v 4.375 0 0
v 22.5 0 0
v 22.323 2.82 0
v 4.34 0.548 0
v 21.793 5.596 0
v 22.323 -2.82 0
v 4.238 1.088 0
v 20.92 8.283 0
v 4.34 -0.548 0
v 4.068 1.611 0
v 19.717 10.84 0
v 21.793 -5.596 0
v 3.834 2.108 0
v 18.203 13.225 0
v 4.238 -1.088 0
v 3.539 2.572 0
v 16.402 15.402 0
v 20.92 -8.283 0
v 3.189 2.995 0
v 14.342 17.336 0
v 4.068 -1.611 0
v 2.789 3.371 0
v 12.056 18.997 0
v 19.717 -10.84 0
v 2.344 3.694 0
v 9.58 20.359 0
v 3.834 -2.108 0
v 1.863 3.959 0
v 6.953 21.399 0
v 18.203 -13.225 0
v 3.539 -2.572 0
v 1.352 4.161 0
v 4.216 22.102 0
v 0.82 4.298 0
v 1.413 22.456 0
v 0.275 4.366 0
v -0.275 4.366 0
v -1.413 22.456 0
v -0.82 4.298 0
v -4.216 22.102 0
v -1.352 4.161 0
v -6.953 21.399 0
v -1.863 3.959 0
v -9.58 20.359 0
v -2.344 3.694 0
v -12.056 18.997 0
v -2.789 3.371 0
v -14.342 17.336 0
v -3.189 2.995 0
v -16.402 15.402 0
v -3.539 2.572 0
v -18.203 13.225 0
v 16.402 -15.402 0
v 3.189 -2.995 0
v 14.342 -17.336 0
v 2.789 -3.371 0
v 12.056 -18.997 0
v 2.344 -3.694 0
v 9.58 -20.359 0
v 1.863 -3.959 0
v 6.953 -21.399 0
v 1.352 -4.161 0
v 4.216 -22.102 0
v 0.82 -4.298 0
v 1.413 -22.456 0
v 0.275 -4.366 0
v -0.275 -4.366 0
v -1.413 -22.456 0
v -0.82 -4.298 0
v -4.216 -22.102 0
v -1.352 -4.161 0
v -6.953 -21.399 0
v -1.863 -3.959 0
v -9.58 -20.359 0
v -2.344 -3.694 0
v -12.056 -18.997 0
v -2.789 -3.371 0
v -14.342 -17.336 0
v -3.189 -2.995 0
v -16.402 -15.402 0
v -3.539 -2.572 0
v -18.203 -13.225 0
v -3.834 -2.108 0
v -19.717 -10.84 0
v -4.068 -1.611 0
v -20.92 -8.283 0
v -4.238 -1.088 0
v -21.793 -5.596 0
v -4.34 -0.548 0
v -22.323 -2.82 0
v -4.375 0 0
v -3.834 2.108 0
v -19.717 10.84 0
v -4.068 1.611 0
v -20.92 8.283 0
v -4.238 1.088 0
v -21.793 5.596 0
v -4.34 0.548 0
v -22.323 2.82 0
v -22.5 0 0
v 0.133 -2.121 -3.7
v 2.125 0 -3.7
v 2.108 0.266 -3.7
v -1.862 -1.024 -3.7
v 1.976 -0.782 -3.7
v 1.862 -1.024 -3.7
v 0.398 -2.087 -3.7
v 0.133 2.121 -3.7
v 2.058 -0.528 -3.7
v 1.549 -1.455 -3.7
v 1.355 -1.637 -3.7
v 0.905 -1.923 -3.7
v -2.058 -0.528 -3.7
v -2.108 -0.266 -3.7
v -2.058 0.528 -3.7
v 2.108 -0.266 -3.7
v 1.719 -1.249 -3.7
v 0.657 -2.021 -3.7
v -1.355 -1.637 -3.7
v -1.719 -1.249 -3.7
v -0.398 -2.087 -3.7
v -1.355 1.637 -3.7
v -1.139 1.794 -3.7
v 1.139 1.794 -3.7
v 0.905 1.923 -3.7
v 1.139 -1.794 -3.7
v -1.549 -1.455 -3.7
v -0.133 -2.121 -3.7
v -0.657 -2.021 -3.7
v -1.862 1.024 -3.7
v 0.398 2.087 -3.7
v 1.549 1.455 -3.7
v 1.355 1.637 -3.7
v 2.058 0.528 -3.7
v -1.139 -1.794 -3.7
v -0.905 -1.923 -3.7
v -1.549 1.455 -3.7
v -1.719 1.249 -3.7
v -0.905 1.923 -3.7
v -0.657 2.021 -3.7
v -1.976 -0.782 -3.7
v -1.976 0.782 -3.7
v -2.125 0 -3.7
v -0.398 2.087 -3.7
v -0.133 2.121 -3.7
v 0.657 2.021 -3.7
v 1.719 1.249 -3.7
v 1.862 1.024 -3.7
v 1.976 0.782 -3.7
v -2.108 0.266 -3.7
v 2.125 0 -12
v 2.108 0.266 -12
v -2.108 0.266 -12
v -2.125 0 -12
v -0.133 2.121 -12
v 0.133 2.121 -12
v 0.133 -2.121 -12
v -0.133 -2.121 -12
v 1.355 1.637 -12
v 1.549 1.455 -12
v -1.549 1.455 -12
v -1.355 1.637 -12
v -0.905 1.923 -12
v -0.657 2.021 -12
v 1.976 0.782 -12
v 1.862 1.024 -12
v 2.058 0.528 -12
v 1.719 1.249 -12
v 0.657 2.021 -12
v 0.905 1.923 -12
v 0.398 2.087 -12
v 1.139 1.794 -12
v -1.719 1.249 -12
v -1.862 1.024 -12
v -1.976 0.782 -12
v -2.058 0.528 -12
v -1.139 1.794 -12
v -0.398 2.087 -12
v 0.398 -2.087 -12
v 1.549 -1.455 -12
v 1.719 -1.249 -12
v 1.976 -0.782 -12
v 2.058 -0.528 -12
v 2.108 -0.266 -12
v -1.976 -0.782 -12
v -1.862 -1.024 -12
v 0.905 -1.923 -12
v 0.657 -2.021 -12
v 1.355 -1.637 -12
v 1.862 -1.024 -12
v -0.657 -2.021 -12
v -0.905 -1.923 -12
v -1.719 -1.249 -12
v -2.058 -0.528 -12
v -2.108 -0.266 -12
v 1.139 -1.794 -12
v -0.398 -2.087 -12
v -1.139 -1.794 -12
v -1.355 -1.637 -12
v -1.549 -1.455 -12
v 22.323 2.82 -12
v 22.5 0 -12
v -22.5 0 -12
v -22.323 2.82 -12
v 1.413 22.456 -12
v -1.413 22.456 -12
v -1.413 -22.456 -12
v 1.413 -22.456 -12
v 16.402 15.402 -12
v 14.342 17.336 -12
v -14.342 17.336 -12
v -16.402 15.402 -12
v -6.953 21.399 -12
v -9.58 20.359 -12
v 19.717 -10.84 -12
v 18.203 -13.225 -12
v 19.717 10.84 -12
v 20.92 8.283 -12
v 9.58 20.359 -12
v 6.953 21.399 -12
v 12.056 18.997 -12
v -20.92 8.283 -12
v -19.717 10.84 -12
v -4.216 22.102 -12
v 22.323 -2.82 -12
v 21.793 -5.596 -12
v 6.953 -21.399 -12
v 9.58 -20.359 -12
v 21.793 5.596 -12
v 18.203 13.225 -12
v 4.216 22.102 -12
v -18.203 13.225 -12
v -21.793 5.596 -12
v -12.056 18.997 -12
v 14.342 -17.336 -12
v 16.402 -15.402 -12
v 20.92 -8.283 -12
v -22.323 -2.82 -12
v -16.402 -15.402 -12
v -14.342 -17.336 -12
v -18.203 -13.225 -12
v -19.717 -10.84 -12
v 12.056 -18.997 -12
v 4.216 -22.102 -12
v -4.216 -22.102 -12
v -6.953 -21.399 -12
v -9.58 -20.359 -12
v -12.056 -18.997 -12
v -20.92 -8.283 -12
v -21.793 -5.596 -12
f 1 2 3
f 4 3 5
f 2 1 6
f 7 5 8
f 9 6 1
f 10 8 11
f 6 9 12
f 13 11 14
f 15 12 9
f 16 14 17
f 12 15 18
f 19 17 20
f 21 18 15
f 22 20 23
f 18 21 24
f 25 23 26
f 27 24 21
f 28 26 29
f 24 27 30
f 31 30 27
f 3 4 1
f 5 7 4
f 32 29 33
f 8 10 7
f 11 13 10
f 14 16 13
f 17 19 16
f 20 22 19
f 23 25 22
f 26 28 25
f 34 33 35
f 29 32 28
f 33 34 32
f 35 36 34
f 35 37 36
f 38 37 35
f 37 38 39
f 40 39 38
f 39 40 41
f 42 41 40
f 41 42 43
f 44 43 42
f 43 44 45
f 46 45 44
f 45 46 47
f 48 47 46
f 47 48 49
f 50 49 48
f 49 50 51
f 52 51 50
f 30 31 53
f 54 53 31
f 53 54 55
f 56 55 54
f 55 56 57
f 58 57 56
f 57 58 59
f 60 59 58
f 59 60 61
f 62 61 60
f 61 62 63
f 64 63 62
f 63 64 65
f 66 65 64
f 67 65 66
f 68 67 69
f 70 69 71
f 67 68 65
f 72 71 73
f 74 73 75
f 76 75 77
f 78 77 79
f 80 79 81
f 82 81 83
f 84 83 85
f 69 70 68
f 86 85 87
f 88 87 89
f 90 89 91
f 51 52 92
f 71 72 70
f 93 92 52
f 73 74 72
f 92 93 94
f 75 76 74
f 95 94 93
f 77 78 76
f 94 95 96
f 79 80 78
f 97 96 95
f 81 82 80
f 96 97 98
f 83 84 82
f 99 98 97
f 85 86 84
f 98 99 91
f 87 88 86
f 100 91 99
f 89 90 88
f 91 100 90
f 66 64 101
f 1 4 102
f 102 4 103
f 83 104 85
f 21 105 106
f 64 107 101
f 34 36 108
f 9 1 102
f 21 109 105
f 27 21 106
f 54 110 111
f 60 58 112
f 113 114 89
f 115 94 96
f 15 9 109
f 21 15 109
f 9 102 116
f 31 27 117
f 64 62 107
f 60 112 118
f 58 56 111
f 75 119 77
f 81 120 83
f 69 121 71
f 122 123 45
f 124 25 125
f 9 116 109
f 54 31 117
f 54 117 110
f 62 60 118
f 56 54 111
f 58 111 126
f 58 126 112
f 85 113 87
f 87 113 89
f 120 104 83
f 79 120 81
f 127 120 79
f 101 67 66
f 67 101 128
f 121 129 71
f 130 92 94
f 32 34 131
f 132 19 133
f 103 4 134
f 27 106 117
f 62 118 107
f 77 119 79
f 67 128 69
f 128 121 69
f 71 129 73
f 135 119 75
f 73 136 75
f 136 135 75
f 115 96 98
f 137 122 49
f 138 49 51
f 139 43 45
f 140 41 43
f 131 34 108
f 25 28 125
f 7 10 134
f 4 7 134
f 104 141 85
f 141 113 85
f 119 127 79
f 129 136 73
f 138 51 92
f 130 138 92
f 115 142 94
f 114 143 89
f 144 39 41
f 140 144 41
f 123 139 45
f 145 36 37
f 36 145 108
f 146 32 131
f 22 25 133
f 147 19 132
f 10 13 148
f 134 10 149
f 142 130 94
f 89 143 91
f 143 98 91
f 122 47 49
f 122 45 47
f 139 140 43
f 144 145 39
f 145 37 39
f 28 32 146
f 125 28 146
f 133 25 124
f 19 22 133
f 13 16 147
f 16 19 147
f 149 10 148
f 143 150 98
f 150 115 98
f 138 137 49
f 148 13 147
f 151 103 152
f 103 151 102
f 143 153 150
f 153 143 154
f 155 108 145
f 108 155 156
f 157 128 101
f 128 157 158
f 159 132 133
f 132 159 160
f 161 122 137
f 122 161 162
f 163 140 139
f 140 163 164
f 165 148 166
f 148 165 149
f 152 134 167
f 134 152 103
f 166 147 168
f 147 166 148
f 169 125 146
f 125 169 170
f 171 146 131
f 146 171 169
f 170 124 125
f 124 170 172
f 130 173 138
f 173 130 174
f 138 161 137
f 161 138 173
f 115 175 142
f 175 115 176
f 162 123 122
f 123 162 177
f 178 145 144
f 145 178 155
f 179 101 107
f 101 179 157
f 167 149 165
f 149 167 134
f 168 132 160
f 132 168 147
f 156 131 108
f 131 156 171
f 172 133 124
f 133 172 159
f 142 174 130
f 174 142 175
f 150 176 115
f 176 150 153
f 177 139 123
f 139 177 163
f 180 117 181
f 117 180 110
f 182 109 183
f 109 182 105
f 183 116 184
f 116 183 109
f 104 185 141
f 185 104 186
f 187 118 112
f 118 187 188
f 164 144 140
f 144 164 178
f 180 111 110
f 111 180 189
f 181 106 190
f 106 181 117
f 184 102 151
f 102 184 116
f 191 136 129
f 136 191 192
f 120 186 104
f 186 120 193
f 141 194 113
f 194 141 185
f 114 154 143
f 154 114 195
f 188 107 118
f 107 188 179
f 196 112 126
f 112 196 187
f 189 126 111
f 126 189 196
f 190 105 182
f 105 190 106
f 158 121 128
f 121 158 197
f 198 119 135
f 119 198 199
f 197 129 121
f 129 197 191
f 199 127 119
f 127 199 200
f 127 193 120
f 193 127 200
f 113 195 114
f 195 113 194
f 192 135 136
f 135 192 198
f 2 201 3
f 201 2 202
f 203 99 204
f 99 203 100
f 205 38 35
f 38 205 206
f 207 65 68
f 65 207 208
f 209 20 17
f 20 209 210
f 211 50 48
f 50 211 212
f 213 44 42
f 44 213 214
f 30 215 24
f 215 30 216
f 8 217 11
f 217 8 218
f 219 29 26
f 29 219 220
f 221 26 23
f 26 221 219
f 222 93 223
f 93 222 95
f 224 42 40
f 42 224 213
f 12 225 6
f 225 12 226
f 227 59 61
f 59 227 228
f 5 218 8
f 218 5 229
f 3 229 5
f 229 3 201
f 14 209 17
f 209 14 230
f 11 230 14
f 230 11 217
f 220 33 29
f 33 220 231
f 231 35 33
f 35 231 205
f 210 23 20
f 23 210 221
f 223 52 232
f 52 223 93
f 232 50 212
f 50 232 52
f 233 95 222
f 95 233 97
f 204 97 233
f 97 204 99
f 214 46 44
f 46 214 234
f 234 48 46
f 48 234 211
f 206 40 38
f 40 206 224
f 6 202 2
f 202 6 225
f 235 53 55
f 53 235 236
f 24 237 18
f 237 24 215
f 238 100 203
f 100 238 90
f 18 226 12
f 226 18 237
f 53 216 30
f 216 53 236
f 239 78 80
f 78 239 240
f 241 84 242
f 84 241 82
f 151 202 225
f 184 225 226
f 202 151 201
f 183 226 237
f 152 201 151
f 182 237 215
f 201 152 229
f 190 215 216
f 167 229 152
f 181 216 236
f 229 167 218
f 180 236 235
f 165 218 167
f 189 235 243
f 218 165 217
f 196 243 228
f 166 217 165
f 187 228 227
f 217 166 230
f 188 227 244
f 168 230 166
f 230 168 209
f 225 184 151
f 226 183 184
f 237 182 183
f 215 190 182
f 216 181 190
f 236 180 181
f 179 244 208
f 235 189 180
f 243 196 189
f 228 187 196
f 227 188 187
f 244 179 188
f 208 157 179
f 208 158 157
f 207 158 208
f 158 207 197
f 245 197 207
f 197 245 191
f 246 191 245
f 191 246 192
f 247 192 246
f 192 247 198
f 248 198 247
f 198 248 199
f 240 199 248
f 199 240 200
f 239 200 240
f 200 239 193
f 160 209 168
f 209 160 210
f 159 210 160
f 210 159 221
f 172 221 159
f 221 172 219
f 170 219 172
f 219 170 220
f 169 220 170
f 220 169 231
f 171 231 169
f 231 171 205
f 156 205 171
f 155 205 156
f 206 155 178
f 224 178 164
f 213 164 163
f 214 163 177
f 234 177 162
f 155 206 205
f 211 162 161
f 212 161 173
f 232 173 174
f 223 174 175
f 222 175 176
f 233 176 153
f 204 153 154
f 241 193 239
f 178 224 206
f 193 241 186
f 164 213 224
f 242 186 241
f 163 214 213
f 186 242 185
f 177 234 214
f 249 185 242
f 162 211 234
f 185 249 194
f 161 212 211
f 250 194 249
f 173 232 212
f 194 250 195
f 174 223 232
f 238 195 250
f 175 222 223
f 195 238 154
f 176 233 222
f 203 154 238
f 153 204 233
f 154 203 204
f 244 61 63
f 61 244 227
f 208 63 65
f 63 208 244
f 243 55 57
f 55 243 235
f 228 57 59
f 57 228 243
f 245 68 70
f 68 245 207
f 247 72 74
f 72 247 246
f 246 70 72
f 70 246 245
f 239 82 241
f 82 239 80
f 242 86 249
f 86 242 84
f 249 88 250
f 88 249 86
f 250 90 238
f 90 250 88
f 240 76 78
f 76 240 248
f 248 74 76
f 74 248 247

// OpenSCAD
$fn = 50;


difference() {
	union() {
		translate(v = [0, 0, -12.0000000000]) {
			cylinder(h = 12, r = 22.5000000000);
		}
	}
	union() {
		translate(v = [0, 0, 0]) {
			rotate(a = [0, 0, 0]) {
				difference() {
					union() {
						translate(v = [0, 0, -15.0000000000]) {
							cylinder(h = 15, r = 2.0000000000);
						}
						translate(v = [0, 0, -3.7000000000]) {
							cylinder(h = 3.7000000000, r1 = 2.1250000000, r2 = 4.3750000000);
						}
						translate(v = [0, 0, -15.0000000000]) {
							cylinder(h = 15, r = 2.1250000000);
						}
						translate(v = [0, 0, -15.0000000000]) {
							cylinder(h = 15, r = 2.0000000000);
						}
					}
					union();
				}
			}
		}
	}
}
